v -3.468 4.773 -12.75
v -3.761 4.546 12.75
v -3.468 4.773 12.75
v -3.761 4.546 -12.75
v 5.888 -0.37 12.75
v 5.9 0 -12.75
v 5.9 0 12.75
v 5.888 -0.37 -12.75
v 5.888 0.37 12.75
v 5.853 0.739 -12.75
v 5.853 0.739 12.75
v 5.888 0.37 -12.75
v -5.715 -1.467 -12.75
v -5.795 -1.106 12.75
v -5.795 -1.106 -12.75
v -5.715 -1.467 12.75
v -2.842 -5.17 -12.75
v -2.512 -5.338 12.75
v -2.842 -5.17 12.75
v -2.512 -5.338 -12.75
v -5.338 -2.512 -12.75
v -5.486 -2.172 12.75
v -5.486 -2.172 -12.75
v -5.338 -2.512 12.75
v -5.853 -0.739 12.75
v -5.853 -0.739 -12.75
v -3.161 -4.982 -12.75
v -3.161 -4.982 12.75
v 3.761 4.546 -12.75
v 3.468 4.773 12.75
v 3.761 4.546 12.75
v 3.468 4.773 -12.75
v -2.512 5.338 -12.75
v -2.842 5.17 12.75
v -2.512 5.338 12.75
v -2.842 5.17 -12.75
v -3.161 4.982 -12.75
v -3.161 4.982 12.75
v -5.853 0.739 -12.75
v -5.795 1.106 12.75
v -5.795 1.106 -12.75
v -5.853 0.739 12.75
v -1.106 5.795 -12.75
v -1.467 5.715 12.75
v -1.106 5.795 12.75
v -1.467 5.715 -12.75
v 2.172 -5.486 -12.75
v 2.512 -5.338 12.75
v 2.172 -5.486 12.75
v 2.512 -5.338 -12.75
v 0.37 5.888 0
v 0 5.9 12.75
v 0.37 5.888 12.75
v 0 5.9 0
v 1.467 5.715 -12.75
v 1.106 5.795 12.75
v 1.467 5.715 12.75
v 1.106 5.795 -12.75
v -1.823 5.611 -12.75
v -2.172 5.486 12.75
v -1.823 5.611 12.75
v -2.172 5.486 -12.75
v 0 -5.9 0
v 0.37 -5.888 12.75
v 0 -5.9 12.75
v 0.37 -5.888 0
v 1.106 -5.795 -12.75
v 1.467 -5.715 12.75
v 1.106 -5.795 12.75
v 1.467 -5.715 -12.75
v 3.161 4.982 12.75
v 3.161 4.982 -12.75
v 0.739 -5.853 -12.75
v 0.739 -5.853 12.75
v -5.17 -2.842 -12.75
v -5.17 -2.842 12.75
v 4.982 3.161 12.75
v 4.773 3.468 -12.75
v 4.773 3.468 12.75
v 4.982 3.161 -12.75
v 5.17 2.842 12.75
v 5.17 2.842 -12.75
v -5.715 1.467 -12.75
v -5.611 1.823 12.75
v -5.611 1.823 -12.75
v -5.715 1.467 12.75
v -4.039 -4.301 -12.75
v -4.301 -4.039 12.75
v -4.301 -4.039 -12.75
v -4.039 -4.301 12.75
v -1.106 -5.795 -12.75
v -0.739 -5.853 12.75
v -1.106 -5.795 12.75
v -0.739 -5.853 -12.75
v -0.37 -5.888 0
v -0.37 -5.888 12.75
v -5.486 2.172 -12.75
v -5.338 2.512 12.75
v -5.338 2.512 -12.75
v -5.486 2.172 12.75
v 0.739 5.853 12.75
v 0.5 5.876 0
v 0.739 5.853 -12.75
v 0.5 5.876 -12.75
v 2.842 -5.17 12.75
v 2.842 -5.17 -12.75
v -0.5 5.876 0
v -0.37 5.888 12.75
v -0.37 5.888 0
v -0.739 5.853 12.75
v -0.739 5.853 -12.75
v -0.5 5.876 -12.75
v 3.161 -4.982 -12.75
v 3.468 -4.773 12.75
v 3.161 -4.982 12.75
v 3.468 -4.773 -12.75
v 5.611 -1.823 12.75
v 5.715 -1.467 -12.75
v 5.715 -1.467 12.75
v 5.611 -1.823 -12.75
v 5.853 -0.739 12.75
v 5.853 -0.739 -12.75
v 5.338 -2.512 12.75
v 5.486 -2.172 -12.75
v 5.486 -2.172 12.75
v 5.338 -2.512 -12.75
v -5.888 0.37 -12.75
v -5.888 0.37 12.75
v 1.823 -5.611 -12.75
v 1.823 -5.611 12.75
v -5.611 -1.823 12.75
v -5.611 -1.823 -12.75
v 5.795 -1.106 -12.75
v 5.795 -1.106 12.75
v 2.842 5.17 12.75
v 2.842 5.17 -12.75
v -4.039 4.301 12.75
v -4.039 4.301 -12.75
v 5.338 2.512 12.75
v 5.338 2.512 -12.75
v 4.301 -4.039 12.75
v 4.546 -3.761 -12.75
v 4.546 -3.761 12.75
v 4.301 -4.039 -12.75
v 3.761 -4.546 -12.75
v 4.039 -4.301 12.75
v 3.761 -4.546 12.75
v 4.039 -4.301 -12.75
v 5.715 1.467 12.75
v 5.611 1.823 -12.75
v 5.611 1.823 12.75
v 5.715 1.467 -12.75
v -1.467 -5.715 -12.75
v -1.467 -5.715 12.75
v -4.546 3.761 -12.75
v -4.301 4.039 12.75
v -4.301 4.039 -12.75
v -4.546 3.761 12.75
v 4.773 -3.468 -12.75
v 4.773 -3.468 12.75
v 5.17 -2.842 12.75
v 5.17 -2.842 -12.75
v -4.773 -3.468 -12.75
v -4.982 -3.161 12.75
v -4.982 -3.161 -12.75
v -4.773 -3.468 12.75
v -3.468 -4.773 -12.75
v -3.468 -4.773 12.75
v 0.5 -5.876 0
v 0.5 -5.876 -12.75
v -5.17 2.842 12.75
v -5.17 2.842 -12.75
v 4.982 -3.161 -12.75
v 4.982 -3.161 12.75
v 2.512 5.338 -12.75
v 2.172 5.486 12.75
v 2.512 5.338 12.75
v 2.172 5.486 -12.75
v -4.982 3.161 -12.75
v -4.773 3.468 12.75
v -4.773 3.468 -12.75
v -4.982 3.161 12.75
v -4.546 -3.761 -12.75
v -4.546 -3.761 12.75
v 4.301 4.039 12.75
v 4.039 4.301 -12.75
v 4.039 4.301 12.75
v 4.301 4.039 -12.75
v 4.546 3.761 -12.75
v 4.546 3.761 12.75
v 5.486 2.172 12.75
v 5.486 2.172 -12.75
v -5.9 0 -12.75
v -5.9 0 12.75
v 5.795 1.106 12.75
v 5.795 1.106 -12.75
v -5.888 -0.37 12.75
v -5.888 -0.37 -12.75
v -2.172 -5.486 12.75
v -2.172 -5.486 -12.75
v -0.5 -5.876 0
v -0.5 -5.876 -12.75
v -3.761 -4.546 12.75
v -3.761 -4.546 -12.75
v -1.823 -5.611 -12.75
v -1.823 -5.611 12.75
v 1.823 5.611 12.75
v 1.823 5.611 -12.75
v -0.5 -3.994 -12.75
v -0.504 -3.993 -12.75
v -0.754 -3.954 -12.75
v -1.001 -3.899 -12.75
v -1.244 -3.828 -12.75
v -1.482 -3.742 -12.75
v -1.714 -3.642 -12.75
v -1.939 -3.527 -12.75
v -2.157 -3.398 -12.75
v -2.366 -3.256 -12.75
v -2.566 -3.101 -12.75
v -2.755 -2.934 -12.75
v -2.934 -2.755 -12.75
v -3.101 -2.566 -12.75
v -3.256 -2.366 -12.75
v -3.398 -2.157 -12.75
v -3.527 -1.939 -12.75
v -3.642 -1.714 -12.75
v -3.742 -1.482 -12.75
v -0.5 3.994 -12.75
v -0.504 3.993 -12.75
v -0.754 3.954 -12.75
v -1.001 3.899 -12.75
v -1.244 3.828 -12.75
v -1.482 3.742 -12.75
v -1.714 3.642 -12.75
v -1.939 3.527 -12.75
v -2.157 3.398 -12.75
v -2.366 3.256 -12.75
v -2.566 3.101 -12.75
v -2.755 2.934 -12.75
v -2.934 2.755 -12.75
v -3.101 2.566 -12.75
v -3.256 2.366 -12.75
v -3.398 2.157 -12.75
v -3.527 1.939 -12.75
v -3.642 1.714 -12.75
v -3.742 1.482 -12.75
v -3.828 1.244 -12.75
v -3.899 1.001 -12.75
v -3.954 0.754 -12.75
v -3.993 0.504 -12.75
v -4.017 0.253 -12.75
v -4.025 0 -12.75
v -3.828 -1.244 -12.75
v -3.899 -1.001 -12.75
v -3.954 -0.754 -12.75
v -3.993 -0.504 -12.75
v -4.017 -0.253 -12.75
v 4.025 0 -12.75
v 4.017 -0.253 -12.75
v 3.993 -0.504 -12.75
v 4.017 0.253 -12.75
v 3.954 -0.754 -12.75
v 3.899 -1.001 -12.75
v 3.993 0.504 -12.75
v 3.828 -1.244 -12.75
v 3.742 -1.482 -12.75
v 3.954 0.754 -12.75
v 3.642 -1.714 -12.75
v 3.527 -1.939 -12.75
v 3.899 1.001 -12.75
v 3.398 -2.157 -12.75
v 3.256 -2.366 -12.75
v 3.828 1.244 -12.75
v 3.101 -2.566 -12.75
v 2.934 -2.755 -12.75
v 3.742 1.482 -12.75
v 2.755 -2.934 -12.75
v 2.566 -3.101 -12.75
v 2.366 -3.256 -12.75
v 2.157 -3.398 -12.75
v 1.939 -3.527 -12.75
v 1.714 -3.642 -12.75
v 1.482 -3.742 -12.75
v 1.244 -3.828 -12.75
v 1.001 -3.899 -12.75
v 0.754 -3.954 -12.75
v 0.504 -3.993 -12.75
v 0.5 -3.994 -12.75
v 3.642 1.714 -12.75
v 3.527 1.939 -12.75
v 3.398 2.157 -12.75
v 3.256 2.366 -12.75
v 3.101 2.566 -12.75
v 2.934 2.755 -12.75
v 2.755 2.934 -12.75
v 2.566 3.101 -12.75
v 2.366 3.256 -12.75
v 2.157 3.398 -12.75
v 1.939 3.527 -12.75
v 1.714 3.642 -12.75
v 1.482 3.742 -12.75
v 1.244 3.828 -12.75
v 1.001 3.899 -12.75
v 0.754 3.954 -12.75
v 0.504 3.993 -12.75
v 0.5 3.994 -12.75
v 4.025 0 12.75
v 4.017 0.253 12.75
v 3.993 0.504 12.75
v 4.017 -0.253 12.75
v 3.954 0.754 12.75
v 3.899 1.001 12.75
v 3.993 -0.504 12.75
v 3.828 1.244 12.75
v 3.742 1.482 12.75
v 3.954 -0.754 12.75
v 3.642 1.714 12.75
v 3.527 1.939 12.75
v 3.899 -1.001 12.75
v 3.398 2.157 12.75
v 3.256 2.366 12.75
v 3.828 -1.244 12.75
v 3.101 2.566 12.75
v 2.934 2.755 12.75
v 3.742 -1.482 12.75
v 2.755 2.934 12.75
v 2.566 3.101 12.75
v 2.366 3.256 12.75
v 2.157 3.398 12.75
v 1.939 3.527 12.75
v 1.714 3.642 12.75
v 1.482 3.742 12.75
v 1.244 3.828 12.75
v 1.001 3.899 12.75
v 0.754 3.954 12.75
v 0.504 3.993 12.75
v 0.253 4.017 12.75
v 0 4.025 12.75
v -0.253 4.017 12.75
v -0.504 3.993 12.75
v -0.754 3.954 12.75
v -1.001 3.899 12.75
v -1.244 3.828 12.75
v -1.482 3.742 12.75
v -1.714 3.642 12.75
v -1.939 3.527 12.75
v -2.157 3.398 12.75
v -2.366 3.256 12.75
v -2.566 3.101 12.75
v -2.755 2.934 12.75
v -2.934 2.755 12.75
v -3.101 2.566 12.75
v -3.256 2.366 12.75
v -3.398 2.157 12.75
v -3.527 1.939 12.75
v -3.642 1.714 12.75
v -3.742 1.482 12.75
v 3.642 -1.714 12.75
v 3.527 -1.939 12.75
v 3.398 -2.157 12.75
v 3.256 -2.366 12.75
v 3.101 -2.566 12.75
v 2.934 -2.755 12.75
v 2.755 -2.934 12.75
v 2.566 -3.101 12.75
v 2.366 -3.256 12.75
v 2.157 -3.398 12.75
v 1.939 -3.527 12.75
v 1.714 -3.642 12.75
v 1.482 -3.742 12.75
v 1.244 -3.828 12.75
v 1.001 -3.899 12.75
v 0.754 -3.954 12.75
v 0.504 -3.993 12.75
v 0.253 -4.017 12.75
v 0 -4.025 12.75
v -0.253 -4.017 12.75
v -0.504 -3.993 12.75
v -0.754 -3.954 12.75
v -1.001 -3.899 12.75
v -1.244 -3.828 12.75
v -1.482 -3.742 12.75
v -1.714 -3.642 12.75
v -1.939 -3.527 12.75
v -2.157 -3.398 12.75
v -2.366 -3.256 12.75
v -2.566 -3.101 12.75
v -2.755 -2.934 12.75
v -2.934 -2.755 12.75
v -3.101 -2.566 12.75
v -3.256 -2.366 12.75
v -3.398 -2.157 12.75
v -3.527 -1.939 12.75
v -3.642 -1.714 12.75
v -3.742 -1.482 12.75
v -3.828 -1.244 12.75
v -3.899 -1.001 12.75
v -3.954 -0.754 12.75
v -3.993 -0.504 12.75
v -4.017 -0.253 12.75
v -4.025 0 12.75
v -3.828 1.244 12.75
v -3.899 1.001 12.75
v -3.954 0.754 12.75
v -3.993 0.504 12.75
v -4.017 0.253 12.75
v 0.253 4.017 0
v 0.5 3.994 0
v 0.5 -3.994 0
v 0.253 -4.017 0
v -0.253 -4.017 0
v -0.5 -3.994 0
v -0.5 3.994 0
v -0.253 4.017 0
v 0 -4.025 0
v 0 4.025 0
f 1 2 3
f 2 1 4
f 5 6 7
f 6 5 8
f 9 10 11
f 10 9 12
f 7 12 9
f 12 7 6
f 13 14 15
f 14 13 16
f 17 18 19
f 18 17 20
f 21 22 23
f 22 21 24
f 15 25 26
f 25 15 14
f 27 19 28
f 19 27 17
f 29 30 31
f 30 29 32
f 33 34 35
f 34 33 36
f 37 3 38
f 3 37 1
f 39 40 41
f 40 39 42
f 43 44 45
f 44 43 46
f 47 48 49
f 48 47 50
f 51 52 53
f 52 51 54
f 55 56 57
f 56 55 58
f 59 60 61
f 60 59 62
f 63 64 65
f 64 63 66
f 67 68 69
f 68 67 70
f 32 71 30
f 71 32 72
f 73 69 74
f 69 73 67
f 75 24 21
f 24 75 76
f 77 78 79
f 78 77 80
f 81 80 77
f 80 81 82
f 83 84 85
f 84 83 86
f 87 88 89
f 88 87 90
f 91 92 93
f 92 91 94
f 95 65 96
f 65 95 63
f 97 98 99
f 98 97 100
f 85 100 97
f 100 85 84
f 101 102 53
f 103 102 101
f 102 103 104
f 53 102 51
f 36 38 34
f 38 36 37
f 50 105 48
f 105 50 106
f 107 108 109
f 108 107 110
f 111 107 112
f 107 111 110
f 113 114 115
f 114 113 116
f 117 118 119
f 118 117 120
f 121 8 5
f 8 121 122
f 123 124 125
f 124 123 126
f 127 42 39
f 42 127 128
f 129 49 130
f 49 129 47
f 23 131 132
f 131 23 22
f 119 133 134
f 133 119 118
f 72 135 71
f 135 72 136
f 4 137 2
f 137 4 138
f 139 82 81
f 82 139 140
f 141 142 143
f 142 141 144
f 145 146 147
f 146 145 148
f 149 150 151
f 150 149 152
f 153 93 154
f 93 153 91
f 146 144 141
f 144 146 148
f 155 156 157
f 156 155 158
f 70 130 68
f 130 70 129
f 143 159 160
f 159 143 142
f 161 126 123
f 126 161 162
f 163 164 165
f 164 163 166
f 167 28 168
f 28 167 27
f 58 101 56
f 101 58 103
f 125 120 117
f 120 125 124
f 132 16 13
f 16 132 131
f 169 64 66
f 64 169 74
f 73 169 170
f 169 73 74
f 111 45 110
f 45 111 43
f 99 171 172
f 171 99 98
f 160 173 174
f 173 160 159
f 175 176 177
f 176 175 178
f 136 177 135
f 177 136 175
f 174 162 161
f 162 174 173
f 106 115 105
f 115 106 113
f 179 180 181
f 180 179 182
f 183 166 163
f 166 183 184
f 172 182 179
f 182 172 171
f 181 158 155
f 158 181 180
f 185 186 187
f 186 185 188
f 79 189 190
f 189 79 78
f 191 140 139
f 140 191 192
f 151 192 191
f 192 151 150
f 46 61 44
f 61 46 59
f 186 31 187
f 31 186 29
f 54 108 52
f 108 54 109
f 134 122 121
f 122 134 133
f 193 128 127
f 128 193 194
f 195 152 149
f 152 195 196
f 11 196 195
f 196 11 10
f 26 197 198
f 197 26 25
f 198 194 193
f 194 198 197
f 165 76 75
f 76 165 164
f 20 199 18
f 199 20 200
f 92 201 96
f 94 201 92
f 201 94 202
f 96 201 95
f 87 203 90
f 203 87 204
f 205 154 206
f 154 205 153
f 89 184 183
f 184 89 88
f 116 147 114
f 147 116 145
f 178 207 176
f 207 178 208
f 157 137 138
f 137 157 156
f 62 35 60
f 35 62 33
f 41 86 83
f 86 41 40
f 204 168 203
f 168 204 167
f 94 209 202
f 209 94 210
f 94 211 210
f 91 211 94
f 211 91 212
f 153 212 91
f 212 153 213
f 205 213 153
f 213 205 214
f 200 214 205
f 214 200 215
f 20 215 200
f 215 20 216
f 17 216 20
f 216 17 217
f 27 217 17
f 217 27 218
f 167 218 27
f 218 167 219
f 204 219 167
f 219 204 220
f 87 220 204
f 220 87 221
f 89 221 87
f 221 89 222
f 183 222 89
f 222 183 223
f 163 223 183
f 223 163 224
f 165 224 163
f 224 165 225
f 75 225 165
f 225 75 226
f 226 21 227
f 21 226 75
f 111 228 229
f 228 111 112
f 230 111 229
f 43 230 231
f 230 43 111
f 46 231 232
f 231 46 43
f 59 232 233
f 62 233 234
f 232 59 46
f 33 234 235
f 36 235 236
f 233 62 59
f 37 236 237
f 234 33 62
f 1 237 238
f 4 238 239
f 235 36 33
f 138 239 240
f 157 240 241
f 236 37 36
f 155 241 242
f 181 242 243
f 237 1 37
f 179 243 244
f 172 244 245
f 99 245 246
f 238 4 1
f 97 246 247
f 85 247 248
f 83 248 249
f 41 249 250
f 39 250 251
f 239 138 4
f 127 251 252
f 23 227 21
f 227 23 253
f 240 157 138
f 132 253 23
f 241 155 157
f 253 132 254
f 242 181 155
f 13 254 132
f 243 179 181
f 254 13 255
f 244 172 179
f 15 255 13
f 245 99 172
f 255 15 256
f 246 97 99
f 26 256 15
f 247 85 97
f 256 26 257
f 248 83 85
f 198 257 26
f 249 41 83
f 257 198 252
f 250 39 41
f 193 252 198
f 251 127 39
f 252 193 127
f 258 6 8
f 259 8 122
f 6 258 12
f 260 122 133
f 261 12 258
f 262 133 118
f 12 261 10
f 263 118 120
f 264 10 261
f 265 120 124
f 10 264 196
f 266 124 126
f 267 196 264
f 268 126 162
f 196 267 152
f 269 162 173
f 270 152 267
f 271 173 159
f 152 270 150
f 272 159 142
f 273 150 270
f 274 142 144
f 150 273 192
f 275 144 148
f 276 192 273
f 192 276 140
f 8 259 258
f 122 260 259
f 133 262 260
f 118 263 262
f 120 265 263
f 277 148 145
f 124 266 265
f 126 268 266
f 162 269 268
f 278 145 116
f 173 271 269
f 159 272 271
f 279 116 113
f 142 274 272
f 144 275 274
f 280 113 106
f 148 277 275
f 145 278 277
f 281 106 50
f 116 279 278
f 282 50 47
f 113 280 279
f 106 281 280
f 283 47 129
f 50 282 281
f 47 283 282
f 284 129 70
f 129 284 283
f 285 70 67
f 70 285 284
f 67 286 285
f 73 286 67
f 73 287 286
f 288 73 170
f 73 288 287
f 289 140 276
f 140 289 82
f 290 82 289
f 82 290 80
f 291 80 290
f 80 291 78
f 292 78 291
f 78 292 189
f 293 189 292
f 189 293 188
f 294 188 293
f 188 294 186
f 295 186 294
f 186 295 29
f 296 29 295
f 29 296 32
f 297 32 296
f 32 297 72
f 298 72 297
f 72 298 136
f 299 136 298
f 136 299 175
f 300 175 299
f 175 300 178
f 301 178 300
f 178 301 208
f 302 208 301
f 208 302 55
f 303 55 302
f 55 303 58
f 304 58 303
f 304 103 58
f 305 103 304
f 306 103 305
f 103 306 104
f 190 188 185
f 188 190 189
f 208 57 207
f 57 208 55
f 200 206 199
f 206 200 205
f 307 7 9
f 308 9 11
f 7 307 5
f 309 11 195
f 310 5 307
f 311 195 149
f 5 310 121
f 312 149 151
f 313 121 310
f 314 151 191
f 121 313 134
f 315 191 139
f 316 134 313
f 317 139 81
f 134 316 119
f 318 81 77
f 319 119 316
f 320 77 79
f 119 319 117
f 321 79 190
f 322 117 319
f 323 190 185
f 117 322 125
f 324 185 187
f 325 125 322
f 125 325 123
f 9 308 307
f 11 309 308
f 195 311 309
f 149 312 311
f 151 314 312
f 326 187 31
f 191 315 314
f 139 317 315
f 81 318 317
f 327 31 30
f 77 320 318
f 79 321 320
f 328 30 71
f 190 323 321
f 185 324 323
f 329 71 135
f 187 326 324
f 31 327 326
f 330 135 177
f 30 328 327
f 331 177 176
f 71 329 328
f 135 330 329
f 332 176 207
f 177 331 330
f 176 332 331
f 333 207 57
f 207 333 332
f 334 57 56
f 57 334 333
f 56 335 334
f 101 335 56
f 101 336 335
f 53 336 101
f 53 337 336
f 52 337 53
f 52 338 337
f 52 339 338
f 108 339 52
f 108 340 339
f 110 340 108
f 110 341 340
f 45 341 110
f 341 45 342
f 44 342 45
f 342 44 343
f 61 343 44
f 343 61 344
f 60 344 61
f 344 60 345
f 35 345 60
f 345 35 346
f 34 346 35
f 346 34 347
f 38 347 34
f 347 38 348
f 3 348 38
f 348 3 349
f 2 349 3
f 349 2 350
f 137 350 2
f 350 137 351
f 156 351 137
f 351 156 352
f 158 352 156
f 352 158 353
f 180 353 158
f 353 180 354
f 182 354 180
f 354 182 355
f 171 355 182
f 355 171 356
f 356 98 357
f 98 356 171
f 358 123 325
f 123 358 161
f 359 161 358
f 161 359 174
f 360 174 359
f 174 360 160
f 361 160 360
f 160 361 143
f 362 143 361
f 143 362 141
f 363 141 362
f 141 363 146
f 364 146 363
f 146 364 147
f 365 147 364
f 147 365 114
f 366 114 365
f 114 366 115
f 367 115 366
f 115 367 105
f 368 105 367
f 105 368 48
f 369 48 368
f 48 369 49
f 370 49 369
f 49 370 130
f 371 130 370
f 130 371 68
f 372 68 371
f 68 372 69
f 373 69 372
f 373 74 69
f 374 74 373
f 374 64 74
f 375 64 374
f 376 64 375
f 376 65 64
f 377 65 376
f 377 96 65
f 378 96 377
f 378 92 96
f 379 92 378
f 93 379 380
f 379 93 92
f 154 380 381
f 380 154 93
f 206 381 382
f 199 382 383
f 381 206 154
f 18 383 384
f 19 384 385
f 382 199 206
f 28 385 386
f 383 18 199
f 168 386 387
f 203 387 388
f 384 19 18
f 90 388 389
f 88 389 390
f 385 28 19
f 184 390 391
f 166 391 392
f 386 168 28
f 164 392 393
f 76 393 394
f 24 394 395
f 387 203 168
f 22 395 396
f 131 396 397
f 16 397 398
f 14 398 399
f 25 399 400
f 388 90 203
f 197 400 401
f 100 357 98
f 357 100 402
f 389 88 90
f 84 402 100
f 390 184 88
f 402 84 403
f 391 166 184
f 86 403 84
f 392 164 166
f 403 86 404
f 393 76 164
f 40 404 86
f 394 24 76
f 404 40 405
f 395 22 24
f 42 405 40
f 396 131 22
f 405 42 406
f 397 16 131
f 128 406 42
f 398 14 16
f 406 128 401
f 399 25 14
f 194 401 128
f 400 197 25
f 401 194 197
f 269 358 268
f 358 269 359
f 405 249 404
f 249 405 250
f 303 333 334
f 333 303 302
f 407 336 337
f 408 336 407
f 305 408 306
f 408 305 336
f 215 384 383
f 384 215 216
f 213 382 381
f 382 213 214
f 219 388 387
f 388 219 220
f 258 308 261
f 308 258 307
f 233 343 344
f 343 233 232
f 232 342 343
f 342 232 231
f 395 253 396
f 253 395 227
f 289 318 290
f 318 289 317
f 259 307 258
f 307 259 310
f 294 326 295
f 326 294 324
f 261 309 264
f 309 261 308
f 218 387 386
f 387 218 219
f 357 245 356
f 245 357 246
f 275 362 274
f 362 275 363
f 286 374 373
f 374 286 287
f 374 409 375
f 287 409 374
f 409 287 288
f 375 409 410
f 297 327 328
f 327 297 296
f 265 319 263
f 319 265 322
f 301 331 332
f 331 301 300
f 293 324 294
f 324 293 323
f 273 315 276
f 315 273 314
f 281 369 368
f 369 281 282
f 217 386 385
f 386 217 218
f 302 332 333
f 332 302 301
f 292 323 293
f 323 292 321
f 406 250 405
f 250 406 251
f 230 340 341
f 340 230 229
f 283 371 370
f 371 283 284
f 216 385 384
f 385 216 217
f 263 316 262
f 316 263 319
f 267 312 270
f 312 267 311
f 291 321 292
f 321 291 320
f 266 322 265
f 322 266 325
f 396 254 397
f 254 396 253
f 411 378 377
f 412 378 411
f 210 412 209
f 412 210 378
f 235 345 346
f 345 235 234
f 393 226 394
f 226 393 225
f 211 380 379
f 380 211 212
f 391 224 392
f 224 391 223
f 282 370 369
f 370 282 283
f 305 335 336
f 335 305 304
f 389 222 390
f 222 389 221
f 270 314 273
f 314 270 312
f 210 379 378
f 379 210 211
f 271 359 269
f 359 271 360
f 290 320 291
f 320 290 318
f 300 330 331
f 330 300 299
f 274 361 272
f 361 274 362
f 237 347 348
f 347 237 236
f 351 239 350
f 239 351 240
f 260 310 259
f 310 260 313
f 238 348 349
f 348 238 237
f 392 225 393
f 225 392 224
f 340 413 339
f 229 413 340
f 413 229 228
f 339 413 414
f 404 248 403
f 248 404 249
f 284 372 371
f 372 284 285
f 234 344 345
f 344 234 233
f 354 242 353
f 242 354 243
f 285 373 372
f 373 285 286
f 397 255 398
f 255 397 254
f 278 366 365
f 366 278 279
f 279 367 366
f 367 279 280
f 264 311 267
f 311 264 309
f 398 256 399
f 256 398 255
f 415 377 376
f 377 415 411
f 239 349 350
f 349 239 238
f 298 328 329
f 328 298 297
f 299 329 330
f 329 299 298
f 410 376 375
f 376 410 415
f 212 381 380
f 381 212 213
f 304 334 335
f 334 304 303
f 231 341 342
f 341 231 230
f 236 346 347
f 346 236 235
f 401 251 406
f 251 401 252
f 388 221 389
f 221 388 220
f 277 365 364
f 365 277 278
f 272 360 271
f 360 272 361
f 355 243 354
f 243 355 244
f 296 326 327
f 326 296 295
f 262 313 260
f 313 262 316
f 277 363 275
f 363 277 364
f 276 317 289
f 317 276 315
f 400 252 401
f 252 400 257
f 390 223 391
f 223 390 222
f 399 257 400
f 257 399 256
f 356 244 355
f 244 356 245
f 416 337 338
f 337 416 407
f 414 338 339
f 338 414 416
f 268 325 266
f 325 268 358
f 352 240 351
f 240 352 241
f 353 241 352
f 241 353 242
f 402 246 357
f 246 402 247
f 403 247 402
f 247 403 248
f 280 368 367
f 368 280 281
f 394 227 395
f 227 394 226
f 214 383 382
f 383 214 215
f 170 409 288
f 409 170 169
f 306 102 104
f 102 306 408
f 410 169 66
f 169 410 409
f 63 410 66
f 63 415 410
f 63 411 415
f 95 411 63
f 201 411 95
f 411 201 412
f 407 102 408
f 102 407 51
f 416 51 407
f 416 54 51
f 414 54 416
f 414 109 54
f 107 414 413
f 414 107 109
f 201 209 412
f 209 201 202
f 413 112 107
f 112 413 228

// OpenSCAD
// file: ../shared_helper.scad
// Shared Helper variables and modules

// Variables
quality_value = 100;
$fn = quality_value;

// Screw Holes
m2_hole_diameter = 1.85; // 1.95;
m2_loose_diameter = 2.50;
m2_counter_sink_diameter = 3.80;
m2_counter_sink_length = 2.00;
m2_hole_offset = m2_hole_diameter / 2.0;
m2_hole_height = 100.00;
m2_nut_outer_width = 3.90;
m2_nut_outer_height = 4.40;
m2_nut_outer_depth = 1.50;
// M2_Counter_Sink_Depth

m3_hole_diameter = 2.9; // 2.8
m3_hole_offset = m3_hole_diameter / 2.0;
m3_hole_height = 100.00;
m3_head_diameter = 6.2;
m3_head_depth = 3.0; // 2.5??, 3.0

m4_hole_diameter = 3.85; // 3.90
m4_hole_offset = m4_hole_diameter / 2.0;
m4_hole_height = 100.00;
m4_head_diameter = 7.55;
m4_head_depth = 3.0; // 2.5??, 3.0

// Tolerances
hole_tight_tolerance = 0.05;
hole_loose_tolerance = 0.20;

// Springs
spring_diameter = 5.45;
spring_length = 35.00;

// Nails
brass_nail_diameter = 2.4; // 2.00; // 1.95 at the beginning it tapers
brass_nail_length = 29.54;
brass_nail_head_diameter = 3.20; // 3.00; // oval 2.84 - 3.1 mm
brass_nail_head_depth = 1.80; //1.00; // 1.80; // 2.00;

// General Variables
v_wheel_hole_diameter = 5.20;
v_wheel_offset = (v_wheel_hole_diameter / 2.0) + 2.0;

// Hot-End Holes
stand_off_hole_diameter = m3_hole_diameter;
stand_off_width_distance = 11.60 + stand_off_hole_diameter;

// Magnets
// Small Magnet (Neo)
small_magnet_height = 2.00; // ±2.00 1.97
small_magnet_diameter = 3.00; // ±3.00 // 2.98

// Medium Magnet (Neo)
medium_magnet_height = 2.96; // ±3.00
medium_magnet_diameter = 5.00;

// Large Magnet (ferrite)
large_magnet_height = 2.98; // ±3.00
large_magnet_diameter = 9.79; // ±10.00

// Switches
// D2F Switch
d2f_length = 12.88; // ±12.70
d2f_width = 5.84; // ±5.70
d2f_depth = 6.20; // ±7.00 (5 + 2) ... ±6.50
d2f_pins = 9.00 - 6.50;
d2f_plunger_length = 2.64;
d2f_plunger_width = 0.97; // ±1.00
d2f_plunger_depth = 0.39; // ±0.50
d2f_mount_hole_position = 2.10;
d2f_hole_position_from_centre = 2.85;
d2f_pin_pre_travel = 0.50;
d2f_mount_hole_shift = 4.40 + m2_hole_offset + m2_hole_offset;
d2f_switch_base = 0.2 + 0.7 + 1.50 + 0.55 - 1.0;
d2f_switch_hole_hight = 22.00;
d2f_extra_tolerance_for_switch_holes = 0.12;

// 10t85 Switch
10t85_length = 20.04; // ±19.90
10t85_width = 6.34; // ±6.40
10t85_depth = 10.64; // ±10.70
10t85_plunger_length = 3.28; // ±4.00
10t85_plunger_width = 1.96;
10t85_plunger_depth = 1.30;

// Creality Endstop Board, 2208 V2.0
// creality_endstop_hole_diameter = m3_hole_diameter + hole_loose_tolerance; // Hole is M3 sized but meant for a loose M2
creality_endstop_hole_diameter = m2_hole_diameter + hole_tight_tolerance;
creality_endstop_hole_offset = 15.00;
creality_endstop_board_height = 20.30;
creality_endstop_plug_height_extension = 2.00;
creality_endstop_board_width = 20.20;
creality_endstop_board_thickness = 1.30;
creality_endstop_board_pins_thickness = 3.20 - creality_endstop_board_thickness;
creality_endstop_board_switch_thickness = 8.50 - creality_endstop_board_thickness;
creality_endstop_board_back_space = 2.00; // Taken from the rail mount bracket
creality_endstop_board_back_height = 14.90;
creality_endstop_board_back_width = 16.80;
creality_endstop_back_thickness = 3.30;
creality_endstop_back_hole_wall_spacing = 1.50; //3.00;

// Small Tactile Switch
small_tactile_switch_length = 6.21;
small_tactile_switch_width = 6.17;
small_tactile_switch_depth = 3.18;
small_tactile_switch_plunger_diameter = 3.40;
small_tactile_switch_plunger_depth = 1.40;

// Large Tactile Switch
large_tactile_switch_length = 12.03;
large_tactile_switch_width = 11.95;
large_tactile_switch_depth = 3.12;
large_tactile_switch_plunger_length = 3.75;
large_tactile_switch_plunger_width = 3.70;
large_tactile_switch_plunger_depth = 3.94;

// Button
button_topper_top_diameter = 11.65;
button_topper_bottom_diameter = 12.96;
button_topper_depth = 5.64;
button_topper_bottom_depth = 4.38;

// Belts
// GT2

// Modules
// Creality Mounting Holes
module CrealityCounterSunkHotEndMountingHoles(total_casing_depth, casing_top_extension) {
  // Mounting holes with countersinking - horizontal, through-holes, properly positioned
  cylinder(d=m3_hole_diameter, h=total_casing_depth + 2.00, center=true);
  cylinder(d=m3_hole_diameter, h=total_casing_depth + 2.00, center=true);

  translate([stand_off_width_distance, 0, 0]) {
    cylinder(d=m3_hole_diameter, h=total_casing_depth + 2.00, center=true);
    cylinder(d=m3_head_diameter + hole_loose_tolerance, h=4 + m3_head_depth + 6 + 1.8 + casing_top_extension);
  }
}

module CrealityHotEndMountingHoles(total_casing_depth) {
  cylinder(d=m3_hole_diameter, h=total_casing_depth + 2.00, center=true);

  translate([stand_off_width_distance, 0, 0]) {
    cylinder(d=m3_hole_diameter, h=total_casing_depth + 2.00, center=true);
  }
}

module CrealityEndstopMountHoles(height, include_back_nut_cutout) {
  cylinder(d=creality_endstop_hole_diameter, h=height, center=true);

  translate([creality_endstop_hole_offset, 0, 0]) {
    cylinder(d=creality_endstop_hole_diameter, h=height, center=true);
  }

  if (include_back_nut_cutout) {
    back_depth = m2_nut_outer_depth;

    translate([-2.0, -2.0, 0]) {
      cube([m2_nut_outer_width, m2_nut_outer_height, back_depth]);

      translate([creality_endstop_hole_offset, 0, 0]) {
        cube([m2_nut_outer_width, m2_nut_outer_height, back_depth]);
      }
    }
  }
}

module CrealityEndstopBackSpace(base_cutout_extension) {
  // Smaller gap between screw holes
  translate([creality_endstop_hole_diameter + creality_endstop_back_hole_wall_spacing, 0.0, 0.0]) {
    cube([creality_endstop_board_back_width - 2 * (creality_endstop_hole_diameter + creality_endstop_back_hole_wall_spacing), base_cutout_extension, creality_endstop_back_thickness + 1.0]);
  }

  // Top gap part
  translate([0.0, base_cutout_extension, 0]) {
    cube([creality_endstop_board_back_width, (creality_endstop_board_back_height + base_cutout_extension), creality_endstop_back_thickness + 1.0]);
  }
}

// D2F Switch Mounting
module D2F_Switch_Space() { // Should be used as a negative / difference space
  // D2F Switch Space
  // switch_base = 0.2 + 0.7 + 1.50 + 0.55;
  // switch_base = 0.2 + 0.7 + 1.50 + 0.55 - 1.0;
  switch_base = d2f_switch_base;

  // cube([d2f_depth, d2f_width + 1.05 + 0.75 - 0.95, d2f_length + casing_top_edge_buffer]); // 1.05
  cube([d2f_length, (d2f_width + 2.00) + d2f_pins, d2f_depth]);
}

module D2F_Switch_Mount_Holes() {
  rotate([0, 0, 90]) {
    translate([0.0, d2f_hole_position_from_centre, 0.0]) {
      cylinder(d=m2_hole_diameter + hole_tight_tolerance + (d2f_extra_tolerance_for_switch_holes * 3), h=d2f_switch_hole_hight);
    }

    translate([0.0, -(d2f_hole_position_from_centre + m2_hole_offset), 0.0]) {
      cylinder(d=m2_hole_diameter + hole_tight_tolerance + (d2f_extra_tolerance_for_switch_holes * 3), h=d2f_switch_hole_hight);
    }
  }
}
// main file
// 8mm to 12mm Rod Sleeve Adapter
// This sleeve converts an 8mm linear stainless rod to 12mm mounting holes
// Uses shared_helper.scad for tolerances and quality settings

include <../shared_helper.scad>;

// Rod dimensions
inner_rod_diameter = 8.0;
outer_sleeve_diameter = 12.0;
sleeve_length = 25.5; //30.0;  // Adjust as needed

// Tolerances
inner_tolerance = hole_tight_tolerance;  // Tight fit for the 8mm rod
outer_tolerance = hole_loose_tolerance;  // Slightly looser fit for the 12mm mounting holes

// Gap parameters for installation
gap_width = 1.0;  // Width of the gap to allow squeezing

// Create the sleeve
difference() {
  // Outer cylinder
  cylinder(d=outer_sleeve_diameter - outer_tolerance, h=sleeve_length, center=true);

  // Inner hole for 8mm rod
  cylinder(d=inner_rod_diameter + inner_tolerance, h=sleeve_length + 1, center=true);

  // Gap to allow squeezing for installation
  translate([0, 0, -sleeve_length/2 - 0.5])
  cube([gap_width, outer_sleeve_diameter + 1, sleeve_length + 1], center=true);
}
